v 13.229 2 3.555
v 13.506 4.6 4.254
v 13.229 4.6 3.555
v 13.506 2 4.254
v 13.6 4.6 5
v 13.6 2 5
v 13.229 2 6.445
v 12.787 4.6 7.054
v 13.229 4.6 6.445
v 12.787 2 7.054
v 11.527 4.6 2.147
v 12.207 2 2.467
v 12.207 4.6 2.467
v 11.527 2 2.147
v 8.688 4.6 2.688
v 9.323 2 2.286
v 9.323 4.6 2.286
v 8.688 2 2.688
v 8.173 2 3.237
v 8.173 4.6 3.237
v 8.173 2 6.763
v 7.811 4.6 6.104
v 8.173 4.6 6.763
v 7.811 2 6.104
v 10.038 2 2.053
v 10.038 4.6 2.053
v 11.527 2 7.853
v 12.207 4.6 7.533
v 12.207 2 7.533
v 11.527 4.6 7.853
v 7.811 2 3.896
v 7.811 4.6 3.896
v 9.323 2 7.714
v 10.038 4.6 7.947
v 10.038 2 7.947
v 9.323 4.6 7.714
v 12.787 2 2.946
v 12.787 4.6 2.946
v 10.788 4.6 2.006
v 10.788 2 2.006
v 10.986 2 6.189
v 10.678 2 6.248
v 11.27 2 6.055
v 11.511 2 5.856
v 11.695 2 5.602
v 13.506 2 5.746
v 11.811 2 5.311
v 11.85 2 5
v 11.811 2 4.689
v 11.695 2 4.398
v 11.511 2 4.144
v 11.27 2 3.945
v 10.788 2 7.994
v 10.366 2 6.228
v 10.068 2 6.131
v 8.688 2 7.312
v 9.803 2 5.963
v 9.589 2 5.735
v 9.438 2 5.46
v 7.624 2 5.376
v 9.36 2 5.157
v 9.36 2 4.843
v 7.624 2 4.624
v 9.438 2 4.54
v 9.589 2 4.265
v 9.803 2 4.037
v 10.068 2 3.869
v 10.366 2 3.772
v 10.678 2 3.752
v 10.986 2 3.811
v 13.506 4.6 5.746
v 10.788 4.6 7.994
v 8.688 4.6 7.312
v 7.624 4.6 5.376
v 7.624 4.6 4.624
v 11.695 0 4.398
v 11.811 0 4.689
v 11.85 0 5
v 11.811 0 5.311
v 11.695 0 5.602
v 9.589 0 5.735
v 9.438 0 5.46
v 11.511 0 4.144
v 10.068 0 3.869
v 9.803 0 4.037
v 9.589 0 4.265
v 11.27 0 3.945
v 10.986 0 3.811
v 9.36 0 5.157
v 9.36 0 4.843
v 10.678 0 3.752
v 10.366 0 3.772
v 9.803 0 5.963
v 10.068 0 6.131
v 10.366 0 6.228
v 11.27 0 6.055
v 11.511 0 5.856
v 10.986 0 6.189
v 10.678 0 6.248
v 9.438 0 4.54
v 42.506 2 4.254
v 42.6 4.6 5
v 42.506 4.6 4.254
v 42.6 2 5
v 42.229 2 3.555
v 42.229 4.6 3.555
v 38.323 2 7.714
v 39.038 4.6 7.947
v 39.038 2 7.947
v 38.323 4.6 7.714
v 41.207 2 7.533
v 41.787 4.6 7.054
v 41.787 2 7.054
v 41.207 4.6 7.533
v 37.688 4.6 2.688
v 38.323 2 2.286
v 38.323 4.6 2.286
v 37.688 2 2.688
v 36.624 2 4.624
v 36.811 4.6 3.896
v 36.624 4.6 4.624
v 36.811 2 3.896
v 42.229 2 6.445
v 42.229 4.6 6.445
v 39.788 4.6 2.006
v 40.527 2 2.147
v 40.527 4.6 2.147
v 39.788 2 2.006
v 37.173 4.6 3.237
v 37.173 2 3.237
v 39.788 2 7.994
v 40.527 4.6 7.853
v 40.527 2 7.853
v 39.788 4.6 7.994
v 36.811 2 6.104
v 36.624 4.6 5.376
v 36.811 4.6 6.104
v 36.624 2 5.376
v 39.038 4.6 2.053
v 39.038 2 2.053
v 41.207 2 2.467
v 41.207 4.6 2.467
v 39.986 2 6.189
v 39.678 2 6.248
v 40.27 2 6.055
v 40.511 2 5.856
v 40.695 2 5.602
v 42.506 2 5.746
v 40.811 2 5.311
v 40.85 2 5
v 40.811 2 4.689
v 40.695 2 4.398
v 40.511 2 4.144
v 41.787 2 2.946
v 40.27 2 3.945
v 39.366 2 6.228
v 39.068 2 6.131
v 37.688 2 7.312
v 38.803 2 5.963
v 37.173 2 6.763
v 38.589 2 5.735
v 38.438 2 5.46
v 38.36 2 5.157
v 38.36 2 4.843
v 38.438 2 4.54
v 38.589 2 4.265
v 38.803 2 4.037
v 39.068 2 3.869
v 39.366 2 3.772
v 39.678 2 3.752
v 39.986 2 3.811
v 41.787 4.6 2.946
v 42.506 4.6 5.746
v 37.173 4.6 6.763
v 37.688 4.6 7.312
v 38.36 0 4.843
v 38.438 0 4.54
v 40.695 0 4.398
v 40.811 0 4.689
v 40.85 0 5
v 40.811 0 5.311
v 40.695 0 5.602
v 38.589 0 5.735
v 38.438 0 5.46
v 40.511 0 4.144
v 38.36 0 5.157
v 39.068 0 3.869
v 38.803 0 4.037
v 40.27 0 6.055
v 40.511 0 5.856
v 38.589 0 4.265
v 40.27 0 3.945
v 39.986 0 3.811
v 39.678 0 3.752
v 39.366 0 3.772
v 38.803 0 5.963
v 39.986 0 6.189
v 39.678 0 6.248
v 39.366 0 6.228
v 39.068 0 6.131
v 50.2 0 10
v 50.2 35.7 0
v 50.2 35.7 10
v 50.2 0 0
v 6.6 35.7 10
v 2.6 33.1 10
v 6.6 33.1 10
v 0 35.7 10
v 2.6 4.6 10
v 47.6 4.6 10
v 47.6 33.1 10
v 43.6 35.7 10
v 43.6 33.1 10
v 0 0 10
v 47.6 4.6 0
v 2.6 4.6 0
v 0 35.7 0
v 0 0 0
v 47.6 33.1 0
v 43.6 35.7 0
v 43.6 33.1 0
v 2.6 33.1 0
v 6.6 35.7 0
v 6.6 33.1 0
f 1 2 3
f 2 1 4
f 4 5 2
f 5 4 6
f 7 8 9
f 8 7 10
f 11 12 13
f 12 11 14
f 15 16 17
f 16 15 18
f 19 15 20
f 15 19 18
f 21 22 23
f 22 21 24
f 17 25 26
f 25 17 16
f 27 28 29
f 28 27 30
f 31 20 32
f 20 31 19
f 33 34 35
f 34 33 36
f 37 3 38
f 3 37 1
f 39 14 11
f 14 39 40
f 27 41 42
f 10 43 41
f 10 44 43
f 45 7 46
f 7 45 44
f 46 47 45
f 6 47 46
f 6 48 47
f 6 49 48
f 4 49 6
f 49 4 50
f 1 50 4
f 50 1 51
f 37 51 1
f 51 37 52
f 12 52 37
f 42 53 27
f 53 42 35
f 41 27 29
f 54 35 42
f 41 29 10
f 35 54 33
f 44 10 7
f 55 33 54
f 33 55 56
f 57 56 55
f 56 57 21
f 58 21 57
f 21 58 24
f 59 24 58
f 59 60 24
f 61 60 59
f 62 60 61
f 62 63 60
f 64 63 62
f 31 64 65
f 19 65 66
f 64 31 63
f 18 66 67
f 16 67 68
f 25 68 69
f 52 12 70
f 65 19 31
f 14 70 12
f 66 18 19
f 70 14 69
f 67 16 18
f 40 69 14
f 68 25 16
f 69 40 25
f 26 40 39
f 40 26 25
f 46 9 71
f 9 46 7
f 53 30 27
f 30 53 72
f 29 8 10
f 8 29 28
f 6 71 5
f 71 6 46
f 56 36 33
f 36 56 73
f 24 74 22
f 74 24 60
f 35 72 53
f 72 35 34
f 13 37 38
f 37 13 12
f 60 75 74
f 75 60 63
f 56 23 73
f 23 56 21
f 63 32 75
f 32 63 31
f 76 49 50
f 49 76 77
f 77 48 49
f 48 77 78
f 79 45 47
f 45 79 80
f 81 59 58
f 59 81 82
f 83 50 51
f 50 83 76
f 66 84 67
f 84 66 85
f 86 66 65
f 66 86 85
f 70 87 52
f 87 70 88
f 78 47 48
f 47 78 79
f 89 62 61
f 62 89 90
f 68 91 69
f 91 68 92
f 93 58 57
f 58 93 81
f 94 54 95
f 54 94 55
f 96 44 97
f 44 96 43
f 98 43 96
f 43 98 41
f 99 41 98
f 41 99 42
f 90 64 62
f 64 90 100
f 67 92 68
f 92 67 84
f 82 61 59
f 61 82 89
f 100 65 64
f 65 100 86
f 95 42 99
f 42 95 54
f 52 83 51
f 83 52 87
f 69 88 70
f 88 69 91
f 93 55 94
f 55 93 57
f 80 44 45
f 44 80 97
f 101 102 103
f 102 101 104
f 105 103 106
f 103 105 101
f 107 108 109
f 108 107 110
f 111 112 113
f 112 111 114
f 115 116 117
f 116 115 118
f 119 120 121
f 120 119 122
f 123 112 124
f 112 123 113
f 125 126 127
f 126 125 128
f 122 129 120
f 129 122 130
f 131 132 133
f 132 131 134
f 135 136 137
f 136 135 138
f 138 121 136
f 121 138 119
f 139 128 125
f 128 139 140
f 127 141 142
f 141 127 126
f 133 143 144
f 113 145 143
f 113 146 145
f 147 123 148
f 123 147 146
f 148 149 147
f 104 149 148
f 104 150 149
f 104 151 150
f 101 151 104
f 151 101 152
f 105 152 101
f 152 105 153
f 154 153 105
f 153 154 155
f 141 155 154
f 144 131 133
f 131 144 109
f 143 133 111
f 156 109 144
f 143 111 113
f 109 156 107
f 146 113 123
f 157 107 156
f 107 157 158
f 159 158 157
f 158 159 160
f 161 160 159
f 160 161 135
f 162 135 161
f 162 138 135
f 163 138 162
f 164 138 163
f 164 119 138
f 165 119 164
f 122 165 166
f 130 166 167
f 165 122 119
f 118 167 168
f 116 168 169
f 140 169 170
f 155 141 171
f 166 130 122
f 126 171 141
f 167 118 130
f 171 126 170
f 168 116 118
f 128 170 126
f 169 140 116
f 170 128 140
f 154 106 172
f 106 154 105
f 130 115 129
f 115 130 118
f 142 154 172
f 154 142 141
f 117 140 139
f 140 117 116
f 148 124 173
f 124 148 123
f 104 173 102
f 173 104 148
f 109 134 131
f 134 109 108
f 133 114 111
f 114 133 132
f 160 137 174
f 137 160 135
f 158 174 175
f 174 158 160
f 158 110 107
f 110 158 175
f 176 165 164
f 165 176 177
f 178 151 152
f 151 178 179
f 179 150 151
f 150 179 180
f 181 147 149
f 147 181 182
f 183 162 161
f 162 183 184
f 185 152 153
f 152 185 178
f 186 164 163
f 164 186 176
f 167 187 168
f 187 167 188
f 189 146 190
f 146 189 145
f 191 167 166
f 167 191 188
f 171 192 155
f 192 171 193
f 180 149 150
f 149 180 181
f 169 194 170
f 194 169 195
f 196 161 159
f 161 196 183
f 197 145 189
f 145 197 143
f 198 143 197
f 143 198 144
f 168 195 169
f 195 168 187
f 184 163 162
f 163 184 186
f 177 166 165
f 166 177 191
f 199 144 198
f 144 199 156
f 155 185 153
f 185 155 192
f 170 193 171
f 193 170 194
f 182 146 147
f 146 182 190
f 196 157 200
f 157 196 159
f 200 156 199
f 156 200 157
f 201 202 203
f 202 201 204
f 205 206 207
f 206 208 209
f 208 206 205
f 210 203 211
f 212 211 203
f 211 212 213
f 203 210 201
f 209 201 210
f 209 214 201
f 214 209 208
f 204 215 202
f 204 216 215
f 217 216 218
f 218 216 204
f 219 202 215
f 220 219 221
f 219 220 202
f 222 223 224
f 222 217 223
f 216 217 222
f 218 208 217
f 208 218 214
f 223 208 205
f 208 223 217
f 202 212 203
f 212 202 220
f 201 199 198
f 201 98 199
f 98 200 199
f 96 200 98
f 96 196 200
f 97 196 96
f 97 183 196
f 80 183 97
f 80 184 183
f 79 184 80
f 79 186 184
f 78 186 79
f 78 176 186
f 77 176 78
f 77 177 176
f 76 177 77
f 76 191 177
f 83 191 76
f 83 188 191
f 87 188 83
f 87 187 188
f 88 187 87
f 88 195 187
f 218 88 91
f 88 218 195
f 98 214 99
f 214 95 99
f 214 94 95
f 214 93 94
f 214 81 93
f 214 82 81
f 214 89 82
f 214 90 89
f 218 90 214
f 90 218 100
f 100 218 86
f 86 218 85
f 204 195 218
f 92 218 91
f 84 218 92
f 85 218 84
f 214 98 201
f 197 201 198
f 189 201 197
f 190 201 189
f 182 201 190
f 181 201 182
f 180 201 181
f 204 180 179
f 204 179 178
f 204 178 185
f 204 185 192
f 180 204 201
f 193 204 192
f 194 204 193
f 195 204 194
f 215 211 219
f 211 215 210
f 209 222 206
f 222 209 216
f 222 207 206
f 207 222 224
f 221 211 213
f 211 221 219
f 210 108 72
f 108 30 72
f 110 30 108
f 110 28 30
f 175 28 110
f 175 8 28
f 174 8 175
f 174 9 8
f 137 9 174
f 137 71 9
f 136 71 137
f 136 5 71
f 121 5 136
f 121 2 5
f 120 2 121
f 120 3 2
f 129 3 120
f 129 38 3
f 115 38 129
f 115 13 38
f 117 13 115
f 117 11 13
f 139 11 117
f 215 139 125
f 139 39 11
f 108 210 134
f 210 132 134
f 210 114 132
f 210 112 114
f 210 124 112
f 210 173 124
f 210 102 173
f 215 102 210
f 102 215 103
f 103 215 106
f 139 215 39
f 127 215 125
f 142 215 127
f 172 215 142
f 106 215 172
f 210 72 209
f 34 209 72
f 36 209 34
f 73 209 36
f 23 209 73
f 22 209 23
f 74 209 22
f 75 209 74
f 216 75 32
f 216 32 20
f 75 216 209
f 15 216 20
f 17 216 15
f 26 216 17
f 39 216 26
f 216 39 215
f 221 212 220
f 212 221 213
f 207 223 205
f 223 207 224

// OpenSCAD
width=45;
heigth=28.5;
length=10;
clamp=4;
thickness=2.6;

difference() {
    cube([width + 2 * thickness, heigth + 2 * thickness + 2, length]);

    // inner cutout
    translate([thickness, thickness + 2, -1])
        cube([width, heigth, 3+length]);

    // clamp cutout
    translate([thickness + clamp, 2 * thickness, -1])
        cube([width - 2 * clamp, 2 * heigth, 3+length]);

    screw(thickness + 8);
    screw(thickness + width - 8);
}

module screw(x_pos) {
    // left screw head
    translate([x_pos, 2, length / 2])
        rotate([-90, 0, 0])
        cylinder(20, d=6, $fn=25);

    // left screw hole
    translate([x_pos, -2, length / 2])
        rotate([-90, 0, 0])
        cylinder(20, d=2.5, $fn=25);
}
